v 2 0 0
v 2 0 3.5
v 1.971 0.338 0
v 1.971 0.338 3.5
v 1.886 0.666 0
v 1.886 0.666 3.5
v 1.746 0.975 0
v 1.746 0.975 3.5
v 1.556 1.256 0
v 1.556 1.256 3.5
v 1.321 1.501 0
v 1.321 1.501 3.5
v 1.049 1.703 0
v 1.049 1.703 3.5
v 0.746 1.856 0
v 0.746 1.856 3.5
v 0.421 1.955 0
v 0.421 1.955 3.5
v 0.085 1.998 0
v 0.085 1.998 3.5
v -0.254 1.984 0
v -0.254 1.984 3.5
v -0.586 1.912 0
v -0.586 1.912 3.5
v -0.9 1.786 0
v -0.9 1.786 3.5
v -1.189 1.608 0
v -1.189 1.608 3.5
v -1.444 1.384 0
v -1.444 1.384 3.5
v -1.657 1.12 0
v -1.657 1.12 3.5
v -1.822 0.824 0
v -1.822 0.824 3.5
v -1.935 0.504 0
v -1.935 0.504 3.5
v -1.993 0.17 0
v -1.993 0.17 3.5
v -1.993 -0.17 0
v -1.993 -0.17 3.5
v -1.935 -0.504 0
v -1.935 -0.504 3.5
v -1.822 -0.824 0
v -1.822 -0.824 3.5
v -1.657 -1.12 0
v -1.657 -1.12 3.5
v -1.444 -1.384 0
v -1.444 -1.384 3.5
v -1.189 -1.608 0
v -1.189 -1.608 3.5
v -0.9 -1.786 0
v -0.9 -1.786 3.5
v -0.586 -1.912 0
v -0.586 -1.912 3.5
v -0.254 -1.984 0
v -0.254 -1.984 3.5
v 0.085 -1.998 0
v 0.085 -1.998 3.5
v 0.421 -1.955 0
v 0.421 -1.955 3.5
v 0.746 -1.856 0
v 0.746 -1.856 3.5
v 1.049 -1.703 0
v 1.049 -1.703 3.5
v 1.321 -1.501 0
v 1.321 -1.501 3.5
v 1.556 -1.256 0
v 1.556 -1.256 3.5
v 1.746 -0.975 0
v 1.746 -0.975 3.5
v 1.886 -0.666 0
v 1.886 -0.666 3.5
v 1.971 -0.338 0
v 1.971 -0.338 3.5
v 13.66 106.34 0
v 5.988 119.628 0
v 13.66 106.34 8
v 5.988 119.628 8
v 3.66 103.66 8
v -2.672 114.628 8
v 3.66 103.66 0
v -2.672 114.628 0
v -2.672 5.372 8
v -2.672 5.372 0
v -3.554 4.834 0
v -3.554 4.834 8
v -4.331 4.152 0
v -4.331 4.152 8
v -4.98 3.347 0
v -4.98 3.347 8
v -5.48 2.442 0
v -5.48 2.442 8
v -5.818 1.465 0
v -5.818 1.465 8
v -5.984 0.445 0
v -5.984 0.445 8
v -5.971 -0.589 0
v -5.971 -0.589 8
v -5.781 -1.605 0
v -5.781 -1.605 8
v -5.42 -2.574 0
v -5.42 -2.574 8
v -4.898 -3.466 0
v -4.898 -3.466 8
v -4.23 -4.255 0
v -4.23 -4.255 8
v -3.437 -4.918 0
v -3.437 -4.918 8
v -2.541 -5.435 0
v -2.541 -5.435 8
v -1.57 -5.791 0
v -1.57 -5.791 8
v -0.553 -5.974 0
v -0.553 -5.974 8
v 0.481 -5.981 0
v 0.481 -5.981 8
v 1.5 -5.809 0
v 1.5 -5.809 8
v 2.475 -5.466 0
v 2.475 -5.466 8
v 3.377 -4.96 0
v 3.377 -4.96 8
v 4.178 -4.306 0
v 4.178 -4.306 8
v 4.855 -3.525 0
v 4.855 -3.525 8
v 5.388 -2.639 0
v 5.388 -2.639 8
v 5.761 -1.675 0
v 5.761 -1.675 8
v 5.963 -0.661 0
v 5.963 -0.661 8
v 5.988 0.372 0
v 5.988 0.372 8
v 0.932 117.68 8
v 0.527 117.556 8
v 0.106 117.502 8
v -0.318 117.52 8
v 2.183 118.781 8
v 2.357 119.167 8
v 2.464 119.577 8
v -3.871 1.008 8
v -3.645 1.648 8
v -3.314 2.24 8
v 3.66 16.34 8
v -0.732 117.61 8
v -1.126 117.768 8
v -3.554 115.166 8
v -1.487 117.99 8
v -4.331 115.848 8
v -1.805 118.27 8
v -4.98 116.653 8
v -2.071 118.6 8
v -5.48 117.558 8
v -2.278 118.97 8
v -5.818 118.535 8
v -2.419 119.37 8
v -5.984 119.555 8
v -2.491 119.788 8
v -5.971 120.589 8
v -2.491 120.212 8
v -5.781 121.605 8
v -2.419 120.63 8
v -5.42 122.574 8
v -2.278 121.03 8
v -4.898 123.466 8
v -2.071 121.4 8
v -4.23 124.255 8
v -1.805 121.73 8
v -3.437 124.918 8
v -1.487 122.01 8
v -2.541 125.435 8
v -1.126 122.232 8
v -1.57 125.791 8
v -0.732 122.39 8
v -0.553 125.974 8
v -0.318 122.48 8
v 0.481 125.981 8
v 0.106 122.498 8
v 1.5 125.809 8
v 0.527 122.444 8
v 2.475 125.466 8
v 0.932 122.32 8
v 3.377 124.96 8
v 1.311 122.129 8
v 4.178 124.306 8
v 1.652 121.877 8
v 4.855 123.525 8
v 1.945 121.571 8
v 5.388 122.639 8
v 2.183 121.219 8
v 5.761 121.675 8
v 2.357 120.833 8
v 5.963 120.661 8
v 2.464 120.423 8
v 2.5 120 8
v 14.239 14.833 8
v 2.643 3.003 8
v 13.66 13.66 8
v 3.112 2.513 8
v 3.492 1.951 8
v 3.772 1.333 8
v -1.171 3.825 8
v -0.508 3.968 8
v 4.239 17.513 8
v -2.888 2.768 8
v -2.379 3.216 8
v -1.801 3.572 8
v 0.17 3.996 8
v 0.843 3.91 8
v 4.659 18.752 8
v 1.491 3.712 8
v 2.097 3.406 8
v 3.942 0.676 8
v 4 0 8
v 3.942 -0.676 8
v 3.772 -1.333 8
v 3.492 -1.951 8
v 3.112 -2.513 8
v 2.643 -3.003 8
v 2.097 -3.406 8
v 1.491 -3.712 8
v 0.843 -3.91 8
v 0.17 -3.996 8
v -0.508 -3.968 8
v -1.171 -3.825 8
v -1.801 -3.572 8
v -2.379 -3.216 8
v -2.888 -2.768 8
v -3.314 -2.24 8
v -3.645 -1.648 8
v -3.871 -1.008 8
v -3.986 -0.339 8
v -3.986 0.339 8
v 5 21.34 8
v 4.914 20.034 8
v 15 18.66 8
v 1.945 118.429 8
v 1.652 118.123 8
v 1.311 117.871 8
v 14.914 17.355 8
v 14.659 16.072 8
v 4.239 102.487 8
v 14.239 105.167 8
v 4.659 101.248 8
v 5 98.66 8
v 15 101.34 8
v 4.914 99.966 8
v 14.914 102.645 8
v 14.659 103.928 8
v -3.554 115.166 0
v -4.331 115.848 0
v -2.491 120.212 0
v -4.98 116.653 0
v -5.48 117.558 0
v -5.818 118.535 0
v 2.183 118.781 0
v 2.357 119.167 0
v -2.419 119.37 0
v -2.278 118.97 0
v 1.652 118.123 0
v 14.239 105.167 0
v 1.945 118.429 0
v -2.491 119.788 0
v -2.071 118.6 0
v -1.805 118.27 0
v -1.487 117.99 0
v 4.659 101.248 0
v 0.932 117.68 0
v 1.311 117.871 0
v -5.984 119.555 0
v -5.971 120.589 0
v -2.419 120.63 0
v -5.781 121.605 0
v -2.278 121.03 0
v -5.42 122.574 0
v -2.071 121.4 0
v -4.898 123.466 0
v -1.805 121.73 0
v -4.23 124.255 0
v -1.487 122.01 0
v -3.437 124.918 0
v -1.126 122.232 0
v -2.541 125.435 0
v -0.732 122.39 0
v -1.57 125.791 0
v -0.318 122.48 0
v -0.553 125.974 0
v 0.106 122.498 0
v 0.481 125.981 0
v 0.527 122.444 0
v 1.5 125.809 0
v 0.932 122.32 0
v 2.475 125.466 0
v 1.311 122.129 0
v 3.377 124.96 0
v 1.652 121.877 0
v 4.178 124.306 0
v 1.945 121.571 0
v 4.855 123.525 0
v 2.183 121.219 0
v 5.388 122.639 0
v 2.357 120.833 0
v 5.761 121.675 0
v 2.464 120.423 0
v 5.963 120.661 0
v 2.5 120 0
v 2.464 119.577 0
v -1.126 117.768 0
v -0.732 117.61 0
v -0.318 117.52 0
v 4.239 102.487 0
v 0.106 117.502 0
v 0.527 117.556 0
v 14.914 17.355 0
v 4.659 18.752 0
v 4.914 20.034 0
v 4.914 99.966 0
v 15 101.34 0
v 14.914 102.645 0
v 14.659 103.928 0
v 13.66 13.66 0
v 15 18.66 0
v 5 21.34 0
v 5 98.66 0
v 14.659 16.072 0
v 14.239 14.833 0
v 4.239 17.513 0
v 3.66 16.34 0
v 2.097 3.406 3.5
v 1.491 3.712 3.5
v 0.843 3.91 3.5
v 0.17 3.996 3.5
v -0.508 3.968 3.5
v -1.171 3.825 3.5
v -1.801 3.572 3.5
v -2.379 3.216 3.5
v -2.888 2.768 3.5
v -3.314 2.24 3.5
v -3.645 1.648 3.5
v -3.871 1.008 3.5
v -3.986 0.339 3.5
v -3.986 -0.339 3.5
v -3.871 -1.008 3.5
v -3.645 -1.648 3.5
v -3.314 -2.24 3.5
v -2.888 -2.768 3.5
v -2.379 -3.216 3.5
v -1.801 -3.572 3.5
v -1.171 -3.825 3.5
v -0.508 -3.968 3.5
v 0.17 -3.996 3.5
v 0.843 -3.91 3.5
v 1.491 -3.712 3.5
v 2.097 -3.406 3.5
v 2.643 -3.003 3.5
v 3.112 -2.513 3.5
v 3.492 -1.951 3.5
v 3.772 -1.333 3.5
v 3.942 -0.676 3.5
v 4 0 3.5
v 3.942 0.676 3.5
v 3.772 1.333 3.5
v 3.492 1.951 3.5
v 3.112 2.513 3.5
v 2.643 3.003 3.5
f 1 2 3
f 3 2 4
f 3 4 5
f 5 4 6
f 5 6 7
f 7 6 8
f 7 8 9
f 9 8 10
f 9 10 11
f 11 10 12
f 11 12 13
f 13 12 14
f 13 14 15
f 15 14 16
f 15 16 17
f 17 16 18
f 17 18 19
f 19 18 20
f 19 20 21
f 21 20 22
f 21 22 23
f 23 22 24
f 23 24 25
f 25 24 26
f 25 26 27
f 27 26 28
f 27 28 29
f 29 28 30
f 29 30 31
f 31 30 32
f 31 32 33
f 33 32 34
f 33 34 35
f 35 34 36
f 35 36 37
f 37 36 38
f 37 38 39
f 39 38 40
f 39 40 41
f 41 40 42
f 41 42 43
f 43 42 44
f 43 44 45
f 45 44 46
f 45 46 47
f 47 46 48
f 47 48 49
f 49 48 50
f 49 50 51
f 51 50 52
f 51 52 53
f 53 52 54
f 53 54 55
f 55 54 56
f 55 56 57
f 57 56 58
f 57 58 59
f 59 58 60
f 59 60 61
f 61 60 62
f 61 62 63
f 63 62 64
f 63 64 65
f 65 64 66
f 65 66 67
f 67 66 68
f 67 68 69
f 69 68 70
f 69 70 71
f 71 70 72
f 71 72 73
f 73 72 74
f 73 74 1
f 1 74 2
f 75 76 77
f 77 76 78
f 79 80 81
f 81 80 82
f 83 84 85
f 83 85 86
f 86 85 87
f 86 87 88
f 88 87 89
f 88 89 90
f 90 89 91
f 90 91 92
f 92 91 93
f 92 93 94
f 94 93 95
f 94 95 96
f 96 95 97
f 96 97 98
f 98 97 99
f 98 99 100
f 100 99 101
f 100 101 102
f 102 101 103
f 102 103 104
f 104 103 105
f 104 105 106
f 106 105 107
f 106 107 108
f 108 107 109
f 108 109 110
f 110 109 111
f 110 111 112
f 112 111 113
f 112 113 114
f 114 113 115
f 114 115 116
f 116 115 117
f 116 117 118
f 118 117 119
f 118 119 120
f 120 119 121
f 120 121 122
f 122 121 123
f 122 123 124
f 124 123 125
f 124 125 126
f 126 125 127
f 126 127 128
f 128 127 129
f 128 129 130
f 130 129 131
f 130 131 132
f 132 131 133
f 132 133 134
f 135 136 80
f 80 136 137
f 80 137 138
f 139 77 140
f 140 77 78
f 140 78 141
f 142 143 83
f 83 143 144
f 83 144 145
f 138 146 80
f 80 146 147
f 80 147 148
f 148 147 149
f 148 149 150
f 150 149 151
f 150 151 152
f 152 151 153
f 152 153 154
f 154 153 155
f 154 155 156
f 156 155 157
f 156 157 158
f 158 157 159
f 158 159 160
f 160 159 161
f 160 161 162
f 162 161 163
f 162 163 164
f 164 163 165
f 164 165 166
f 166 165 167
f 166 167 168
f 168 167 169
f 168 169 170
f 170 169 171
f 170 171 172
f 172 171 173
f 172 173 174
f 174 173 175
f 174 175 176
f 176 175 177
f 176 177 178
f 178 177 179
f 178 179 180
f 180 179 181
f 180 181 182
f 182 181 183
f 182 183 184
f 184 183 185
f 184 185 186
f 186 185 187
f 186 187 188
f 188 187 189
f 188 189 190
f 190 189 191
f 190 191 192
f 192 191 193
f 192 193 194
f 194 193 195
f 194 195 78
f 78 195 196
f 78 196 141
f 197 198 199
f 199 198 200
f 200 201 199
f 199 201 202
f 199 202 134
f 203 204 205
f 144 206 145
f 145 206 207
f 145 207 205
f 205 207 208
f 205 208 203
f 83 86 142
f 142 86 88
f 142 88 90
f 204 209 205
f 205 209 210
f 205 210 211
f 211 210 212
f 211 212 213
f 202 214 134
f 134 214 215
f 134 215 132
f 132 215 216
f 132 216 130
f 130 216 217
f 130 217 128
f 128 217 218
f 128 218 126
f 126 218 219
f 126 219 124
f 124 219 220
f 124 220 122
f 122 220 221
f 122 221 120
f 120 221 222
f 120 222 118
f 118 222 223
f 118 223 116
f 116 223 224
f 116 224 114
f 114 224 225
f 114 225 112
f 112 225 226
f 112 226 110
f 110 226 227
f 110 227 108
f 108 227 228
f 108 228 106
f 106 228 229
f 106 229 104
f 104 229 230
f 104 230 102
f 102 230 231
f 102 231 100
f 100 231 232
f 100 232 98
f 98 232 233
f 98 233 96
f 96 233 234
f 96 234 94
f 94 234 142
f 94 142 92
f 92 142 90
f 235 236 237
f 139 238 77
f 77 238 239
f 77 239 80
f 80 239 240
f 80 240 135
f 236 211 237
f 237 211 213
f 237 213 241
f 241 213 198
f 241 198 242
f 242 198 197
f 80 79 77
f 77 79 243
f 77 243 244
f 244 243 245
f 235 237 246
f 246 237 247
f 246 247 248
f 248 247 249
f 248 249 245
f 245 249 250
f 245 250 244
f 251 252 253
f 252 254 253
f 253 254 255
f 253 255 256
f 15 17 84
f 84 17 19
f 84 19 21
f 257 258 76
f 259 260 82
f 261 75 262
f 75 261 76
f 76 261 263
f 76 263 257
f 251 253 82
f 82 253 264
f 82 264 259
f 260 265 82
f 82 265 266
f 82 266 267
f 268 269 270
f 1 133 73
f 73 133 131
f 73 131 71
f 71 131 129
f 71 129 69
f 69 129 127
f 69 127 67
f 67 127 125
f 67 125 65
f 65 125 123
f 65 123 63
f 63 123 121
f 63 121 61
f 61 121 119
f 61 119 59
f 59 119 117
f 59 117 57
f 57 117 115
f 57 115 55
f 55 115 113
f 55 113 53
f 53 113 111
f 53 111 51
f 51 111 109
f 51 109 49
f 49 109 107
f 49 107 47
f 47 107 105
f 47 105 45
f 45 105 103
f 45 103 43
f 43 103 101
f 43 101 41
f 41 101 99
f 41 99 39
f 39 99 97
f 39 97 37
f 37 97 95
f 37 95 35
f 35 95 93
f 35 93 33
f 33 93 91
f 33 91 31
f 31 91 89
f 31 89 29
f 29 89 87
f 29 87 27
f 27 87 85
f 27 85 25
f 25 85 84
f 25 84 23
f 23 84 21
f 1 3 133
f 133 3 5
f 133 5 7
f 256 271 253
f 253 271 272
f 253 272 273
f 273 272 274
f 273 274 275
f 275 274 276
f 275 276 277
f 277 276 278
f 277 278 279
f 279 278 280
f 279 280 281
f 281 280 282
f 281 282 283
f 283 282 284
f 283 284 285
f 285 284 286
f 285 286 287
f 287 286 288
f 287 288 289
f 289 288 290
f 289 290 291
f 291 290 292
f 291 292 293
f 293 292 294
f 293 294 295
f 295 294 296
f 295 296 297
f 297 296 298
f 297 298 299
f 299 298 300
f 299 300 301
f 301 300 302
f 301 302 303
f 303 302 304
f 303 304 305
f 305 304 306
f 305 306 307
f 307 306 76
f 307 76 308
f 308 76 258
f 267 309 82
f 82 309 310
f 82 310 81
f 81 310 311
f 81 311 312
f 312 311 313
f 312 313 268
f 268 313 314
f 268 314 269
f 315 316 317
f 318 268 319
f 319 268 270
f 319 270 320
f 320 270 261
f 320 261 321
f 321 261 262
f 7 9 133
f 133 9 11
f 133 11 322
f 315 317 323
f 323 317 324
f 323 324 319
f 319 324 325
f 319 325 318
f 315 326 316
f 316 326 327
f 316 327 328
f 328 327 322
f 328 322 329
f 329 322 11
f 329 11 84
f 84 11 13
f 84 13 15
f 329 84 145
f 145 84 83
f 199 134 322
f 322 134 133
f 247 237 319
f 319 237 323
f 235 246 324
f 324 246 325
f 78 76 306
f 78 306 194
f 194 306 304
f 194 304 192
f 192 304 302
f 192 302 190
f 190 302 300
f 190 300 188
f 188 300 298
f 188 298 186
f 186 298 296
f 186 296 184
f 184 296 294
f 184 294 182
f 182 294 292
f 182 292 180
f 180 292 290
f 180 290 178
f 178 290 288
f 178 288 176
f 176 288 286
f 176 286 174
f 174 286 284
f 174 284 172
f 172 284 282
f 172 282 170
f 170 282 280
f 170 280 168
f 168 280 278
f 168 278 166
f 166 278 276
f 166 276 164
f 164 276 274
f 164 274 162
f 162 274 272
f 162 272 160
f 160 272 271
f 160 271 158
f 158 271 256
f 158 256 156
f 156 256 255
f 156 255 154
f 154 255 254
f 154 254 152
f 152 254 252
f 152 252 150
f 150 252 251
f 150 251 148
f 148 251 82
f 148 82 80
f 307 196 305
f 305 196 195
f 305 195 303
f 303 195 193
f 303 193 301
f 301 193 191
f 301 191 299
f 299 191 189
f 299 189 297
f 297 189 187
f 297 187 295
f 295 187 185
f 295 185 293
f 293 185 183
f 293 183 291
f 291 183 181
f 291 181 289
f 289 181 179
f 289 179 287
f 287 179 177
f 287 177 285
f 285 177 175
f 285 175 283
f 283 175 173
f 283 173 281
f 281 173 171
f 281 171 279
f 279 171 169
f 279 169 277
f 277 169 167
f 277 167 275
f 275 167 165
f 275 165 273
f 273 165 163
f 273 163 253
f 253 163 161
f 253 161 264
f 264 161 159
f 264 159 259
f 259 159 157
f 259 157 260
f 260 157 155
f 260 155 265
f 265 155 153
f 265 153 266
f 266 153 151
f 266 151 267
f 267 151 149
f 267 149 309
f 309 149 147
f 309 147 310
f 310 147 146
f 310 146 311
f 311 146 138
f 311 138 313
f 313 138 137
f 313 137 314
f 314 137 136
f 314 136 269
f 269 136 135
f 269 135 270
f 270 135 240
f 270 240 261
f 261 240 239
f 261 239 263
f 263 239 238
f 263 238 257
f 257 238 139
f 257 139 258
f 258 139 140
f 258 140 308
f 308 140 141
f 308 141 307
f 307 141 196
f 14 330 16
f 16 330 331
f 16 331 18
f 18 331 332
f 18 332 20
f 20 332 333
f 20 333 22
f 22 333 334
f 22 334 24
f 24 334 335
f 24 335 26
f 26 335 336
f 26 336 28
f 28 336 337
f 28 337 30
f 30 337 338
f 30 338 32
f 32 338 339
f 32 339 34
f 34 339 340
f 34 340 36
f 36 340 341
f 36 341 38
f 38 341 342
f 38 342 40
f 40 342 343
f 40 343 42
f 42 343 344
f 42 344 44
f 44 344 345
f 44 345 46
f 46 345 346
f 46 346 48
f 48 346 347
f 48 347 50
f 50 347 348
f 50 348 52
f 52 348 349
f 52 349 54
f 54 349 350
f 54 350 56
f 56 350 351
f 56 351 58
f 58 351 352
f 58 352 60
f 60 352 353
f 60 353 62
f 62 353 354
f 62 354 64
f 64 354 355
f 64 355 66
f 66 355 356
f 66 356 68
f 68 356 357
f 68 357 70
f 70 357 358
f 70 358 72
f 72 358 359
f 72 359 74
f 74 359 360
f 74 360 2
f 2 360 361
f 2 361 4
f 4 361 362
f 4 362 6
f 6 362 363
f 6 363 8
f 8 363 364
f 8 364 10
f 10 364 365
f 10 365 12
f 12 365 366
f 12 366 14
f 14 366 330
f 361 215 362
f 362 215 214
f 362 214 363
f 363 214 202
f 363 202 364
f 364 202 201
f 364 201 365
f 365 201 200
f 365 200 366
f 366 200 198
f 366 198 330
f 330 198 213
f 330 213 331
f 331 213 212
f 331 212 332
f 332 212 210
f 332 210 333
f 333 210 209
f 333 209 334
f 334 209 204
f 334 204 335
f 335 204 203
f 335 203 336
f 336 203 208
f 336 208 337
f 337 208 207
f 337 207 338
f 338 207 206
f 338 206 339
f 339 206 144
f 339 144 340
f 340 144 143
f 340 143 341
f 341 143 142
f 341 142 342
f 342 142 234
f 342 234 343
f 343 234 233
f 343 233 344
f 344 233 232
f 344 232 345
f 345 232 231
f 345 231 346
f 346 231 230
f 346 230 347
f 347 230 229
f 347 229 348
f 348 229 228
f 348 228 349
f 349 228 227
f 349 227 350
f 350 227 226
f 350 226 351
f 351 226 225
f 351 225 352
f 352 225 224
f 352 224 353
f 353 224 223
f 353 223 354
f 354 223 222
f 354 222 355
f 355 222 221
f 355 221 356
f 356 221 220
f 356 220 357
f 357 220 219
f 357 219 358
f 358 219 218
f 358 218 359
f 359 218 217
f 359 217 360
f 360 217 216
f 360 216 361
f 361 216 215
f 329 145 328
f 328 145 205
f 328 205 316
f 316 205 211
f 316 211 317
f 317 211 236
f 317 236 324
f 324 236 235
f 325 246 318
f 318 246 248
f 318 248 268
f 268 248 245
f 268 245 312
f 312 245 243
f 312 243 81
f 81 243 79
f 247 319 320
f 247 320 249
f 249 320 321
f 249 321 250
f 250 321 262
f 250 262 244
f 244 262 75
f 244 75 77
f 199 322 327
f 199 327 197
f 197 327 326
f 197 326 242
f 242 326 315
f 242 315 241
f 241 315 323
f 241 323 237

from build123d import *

# Parameters (mm, degrees)
SKETCH_1_R          = 6
EXTRUDE_1_DEPTH     = 8
EXTRUDE_1_2_DEPTH   = 8
EXTRUDE_1_3_DEPTH   = 8
SKETCH_3_R          = 2.5
CUT_EXTRUDE_1_DEPTH = 128.141653285
SKETCH_4_R          = 2
CUT_EXTRUDE_2_DEPTH = 128.141653285
SKETCH_5_R          = 4
CUT_EXTRUDE_3_DEPTH = 4.5
FILLET_1_R          = 10


with BuildPart() as part:
    # 草图1 → Extrude 1 (new body)
    with BuildSketch(Plane.XY):
        Circle(SKETCH_1_R)
    extrude(amount=EXTRUDE_1_DEPTH)



with BuildPart() as body_2:
    # 草图1 → Extrude 1 2 (new body)
    with BuildSketch(Plane.XY):
        with Locations((0, 120)):
            Circle(SKETCH_1_R)
    extrude(amount=EXTRUDE_1_2_DEPTH)


with BuildPart() as part_1:
    add(part.part)

    add(body_2.part)  # Extrude 1 3 merges body 2
    # 草图2 → Extrude 1 3 (add)
    with BuildSketch(Plane.XY):
        Polygon((-4.330127019, 117.5), (5, 101.339745962), (5, 18.660254038), (-4.330127019, 2.5), (4.330127019, -2.5), (15, 15.980762114), (15, 104.019237886), (4.330127019, 122.5), align=None)
    extrude(amount=EXTRUDE_1_3_DEPTH)

    # 草图3 → 切除-拉伸1 (cut, through all)
    with BuildSketch(Plane.XY.offset(8)):
        with Locations((0, 120)):
            Circle(SKETCH_3_R)
    extrude(amount=-CUT_EXTRUDE_1_DEPTH, mode=Mode.SUBTRACT)

    # 草图4 → 切除-拉伸2 (cut, through all)
    with BuildSketch(Plane.XY.offset(8)):
        Circle(SKETCH_4_R)
    extrude(amount=-CUT_EXTRUDE_2_DEPTH, mode=Mode.SUBTRACT)

    # 草图5 → 切除-拉伸3 (cut)
    with BuildSketch(Plane.XY.offset(8)):
        Circle(SKETCH_5_R)
    extrude(amount=-CUT_EXTRUDE_3_DEPTH, mode=Mode.SUBTRACT)

    # 圆角1
    fillet_1_edges = [part_1.edges().sort_by_distance(p)[0] for p in [
        (5, 18.660254038, 4),
        (15, 15.980762114, 4),
        (15, 104.019237886, 4),
        (5, 101.339745962, 4),
    ]]
    fillet(fillet_1_edges, radius=FILLET_1_R)


solid = part_1.part
